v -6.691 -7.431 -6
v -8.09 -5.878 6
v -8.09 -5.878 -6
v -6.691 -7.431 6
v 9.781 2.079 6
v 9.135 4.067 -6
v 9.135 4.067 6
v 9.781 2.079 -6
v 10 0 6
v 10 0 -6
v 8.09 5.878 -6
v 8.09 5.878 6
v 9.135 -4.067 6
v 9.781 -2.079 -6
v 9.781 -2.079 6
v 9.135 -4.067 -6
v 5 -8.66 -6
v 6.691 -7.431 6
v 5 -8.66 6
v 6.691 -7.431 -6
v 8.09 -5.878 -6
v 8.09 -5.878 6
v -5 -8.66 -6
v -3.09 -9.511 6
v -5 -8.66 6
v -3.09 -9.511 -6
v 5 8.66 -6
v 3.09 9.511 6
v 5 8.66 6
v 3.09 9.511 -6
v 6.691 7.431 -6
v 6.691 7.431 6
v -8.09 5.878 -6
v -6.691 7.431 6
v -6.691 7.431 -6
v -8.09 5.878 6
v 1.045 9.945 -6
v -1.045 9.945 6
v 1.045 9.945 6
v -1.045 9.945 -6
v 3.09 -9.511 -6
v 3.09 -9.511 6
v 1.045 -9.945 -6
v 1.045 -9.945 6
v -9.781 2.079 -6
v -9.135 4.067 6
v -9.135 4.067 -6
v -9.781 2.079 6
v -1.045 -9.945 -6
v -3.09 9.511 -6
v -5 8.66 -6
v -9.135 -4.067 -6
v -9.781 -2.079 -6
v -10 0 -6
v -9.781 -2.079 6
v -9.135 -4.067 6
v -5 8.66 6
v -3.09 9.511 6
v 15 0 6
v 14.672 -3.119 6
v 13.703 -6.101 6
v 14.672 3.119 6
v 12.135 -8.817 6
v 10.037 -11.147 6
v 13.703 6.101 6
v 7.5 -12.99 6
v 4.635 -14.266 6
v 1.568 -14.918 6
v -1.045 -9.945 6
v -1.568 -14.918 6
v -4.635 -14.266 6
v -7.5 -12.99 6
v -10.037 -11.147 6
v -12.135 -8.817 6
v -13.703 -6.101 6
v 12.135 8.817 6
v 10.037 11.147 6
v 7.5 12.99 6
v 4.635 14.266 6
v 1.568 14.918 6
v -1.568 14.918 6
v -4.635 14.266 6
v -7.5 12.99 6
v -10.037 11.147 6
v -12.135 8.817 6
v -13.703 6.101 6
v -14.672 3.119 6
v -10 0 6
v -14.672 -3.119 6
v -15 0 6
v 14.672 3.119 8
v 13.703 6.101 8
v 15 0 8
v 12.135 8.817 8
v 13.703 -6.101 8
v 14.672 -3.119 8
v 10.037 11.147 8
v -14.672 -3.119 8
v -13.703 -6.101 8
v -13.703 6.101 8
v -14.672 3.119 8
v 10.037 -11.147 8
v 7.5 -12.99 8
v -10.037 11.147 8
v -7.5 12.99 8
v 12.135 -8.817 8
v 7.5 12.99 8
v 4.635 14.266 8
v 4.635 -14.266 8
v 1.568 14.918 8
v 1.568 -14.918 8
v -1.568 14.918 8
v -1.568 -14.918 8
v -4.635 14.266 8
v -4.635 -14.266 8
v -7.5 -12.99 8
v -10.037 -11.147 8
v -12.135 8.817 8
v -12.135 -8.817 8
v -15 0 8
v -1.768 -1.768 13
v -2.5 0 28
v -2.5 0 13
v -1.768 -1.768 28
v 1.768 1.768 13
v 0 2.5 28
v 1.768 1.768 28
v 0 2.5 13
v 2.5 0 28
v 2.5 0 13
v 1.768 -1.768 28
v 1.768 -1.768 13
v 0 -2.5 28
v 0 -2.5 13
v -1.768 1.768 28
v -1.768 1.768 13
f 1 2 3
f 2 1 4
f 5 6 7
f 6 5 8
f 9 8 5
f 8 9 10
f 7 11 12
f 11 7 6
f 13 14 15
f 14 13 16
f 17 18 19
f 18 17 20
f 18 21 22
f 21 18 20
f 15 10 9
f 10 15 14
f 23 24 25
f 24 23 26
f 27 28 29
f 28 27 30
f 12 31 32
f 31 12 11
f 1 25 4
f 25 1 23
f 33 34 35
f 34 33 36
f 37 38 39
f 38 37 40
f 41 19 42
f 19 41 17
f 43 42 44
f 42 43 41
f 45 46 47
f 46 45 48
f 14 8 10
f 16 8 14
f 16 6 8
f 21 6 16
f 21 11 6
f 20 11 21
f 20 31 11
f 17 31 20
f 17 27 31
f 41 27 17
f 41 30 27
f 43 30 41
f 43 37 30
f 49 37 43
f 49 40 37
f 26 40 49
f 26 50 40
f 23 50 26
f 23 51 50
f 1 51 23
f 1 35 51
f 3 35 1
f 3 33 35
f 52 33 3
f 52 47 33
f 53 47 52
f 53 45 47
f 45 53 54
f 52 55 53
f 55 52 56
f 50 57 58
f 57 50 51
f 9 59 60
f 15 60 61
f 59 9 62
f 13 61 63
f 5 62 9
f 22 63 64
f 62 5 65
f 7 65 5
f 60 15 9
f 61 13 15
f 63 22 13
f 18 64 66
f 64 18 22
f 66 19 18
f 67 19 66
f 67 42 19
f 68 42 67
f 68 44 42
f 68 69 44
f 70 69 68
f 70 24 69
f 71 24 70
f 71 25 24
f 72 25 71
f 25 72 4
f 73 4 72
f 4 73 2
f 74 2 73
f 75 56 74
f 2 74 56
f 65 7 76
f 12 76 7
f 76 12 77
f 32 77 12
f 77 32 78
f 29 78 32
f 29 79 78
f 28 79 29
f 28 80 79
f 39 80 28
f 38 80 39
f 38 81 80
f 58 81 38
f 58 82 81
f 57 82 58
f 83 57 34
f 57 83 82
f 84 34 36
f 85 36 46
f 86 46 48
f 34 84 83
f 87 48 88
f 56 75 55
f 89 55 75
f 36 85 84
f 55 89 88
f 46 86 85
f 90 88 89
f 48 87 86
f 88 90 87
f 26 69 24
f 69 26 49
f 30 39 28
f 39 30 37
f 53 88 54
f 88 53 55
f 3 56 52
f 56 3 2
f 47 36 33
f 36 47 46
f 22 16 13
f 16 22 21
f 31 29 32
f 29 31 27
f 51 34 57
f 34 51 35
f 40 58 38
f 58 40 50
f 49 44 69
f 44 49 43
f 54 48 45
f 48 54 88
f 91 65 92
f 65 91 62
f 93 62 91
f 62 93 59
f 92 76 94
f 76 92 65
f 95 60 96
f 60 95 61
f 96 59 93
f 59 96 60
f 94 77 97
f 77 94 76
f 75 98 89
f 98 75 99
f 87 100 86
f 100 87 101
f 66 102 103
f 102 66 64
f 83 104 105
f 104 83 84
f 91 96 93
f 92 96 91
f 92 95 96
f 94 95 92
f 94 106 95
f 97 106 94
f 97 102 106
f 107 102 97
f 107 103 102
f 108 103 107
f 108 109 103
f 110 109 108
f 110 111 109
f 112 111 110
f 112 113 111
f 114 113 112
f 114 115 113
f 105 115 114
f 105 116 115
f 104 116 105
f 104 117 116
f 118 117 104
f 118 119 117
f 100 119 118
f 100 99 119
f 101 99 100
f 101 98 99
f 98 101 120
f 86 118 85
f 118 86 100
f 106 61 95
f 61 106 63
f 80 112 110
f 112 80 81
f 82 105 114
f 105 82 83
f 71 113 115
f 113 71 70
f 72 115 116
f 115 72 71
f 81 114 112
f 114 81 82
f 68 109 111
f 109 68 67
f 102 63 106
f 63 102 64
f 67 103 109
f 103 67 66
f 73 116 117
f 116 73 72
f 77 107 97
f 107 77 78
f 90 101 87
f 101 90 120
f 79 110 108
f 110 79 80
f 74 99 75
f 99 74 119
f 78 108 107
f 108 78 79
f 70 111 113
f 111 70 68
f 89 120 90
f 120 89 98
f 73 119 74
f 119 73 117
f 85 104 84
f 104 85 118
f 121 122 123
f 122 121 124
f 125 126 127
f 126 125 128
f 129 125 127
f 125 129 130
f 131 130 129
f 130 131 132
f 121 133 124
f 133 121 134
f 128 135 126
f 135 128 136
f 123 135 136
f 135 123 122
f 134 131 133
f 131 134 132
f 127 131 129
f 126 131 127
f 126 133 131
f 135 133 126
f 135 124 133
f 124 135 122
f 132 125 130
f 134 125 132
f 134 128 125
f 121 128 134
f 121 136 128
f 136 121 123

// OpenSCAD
// Parameters for the central cylinder
cylinder_diameter = 20; // Diameter of the cylinder
cylinder_height = 12;   // Height of the cylinder (increased to match the original model)

// Central cylinder
module central_cylinder() {
    cylinder(h = cylinder_height, d = cylinder_diameter, center = true);
}

// Render the central cylinder
central_cylinder();

// Parameters for the flange plate
flange_plate_diameter = 30; // Diameter of the flange plate
flange_plate_thickness = 2; // Thickness of the flange plate (reduced to match the original model)

// Flange plate
module flange_plate() {
    cylinder(h = flange_plate_thickness, d = flange_plate_diameter, center = true);
}

// Render the flange plate
translate([0, 0, cylinder_height / 2 + flange_plate_thickness / 2]) flange_plate();

// Parameters for the nut
nut_diameter = 10; // Diameter of the nut
nut_thickness = 5; // Thickness of the nut
nut_hex_size = 8;  // Size of the hexagonal profile (reduced to match the original model)

// Nut
module nut() {
    rotate([0, 0, 30]) {
        for (i = [0:5]) {
            rotate([0, 0, i * 60]) {
                translate([nut_hex_size / 2, 0, 0]) {
                    square([nut_hex_size, nut_thickness], center = true);
                }
            }
        }
    }
}

// Render the nut
translate([0, 0, cylinder_height / 2 + flange_plate_thickness + nut_thickness / 2]) nut();

// Parameters for the bolt
bolt_diameter = 5; // Diameter of the bolt
bolt_length = 15;  // Length of the bolt (increased to match the original model)

// Bolt
module bolt() {
    cylinder(h = bolt_length, d = bolt_diameter, center = true);
}

// Render the bolt
translate([0, 0, cylinder_height / 2 + flange_plate_thickness + nut_thickness + bolt_length / 2]) bolt();
